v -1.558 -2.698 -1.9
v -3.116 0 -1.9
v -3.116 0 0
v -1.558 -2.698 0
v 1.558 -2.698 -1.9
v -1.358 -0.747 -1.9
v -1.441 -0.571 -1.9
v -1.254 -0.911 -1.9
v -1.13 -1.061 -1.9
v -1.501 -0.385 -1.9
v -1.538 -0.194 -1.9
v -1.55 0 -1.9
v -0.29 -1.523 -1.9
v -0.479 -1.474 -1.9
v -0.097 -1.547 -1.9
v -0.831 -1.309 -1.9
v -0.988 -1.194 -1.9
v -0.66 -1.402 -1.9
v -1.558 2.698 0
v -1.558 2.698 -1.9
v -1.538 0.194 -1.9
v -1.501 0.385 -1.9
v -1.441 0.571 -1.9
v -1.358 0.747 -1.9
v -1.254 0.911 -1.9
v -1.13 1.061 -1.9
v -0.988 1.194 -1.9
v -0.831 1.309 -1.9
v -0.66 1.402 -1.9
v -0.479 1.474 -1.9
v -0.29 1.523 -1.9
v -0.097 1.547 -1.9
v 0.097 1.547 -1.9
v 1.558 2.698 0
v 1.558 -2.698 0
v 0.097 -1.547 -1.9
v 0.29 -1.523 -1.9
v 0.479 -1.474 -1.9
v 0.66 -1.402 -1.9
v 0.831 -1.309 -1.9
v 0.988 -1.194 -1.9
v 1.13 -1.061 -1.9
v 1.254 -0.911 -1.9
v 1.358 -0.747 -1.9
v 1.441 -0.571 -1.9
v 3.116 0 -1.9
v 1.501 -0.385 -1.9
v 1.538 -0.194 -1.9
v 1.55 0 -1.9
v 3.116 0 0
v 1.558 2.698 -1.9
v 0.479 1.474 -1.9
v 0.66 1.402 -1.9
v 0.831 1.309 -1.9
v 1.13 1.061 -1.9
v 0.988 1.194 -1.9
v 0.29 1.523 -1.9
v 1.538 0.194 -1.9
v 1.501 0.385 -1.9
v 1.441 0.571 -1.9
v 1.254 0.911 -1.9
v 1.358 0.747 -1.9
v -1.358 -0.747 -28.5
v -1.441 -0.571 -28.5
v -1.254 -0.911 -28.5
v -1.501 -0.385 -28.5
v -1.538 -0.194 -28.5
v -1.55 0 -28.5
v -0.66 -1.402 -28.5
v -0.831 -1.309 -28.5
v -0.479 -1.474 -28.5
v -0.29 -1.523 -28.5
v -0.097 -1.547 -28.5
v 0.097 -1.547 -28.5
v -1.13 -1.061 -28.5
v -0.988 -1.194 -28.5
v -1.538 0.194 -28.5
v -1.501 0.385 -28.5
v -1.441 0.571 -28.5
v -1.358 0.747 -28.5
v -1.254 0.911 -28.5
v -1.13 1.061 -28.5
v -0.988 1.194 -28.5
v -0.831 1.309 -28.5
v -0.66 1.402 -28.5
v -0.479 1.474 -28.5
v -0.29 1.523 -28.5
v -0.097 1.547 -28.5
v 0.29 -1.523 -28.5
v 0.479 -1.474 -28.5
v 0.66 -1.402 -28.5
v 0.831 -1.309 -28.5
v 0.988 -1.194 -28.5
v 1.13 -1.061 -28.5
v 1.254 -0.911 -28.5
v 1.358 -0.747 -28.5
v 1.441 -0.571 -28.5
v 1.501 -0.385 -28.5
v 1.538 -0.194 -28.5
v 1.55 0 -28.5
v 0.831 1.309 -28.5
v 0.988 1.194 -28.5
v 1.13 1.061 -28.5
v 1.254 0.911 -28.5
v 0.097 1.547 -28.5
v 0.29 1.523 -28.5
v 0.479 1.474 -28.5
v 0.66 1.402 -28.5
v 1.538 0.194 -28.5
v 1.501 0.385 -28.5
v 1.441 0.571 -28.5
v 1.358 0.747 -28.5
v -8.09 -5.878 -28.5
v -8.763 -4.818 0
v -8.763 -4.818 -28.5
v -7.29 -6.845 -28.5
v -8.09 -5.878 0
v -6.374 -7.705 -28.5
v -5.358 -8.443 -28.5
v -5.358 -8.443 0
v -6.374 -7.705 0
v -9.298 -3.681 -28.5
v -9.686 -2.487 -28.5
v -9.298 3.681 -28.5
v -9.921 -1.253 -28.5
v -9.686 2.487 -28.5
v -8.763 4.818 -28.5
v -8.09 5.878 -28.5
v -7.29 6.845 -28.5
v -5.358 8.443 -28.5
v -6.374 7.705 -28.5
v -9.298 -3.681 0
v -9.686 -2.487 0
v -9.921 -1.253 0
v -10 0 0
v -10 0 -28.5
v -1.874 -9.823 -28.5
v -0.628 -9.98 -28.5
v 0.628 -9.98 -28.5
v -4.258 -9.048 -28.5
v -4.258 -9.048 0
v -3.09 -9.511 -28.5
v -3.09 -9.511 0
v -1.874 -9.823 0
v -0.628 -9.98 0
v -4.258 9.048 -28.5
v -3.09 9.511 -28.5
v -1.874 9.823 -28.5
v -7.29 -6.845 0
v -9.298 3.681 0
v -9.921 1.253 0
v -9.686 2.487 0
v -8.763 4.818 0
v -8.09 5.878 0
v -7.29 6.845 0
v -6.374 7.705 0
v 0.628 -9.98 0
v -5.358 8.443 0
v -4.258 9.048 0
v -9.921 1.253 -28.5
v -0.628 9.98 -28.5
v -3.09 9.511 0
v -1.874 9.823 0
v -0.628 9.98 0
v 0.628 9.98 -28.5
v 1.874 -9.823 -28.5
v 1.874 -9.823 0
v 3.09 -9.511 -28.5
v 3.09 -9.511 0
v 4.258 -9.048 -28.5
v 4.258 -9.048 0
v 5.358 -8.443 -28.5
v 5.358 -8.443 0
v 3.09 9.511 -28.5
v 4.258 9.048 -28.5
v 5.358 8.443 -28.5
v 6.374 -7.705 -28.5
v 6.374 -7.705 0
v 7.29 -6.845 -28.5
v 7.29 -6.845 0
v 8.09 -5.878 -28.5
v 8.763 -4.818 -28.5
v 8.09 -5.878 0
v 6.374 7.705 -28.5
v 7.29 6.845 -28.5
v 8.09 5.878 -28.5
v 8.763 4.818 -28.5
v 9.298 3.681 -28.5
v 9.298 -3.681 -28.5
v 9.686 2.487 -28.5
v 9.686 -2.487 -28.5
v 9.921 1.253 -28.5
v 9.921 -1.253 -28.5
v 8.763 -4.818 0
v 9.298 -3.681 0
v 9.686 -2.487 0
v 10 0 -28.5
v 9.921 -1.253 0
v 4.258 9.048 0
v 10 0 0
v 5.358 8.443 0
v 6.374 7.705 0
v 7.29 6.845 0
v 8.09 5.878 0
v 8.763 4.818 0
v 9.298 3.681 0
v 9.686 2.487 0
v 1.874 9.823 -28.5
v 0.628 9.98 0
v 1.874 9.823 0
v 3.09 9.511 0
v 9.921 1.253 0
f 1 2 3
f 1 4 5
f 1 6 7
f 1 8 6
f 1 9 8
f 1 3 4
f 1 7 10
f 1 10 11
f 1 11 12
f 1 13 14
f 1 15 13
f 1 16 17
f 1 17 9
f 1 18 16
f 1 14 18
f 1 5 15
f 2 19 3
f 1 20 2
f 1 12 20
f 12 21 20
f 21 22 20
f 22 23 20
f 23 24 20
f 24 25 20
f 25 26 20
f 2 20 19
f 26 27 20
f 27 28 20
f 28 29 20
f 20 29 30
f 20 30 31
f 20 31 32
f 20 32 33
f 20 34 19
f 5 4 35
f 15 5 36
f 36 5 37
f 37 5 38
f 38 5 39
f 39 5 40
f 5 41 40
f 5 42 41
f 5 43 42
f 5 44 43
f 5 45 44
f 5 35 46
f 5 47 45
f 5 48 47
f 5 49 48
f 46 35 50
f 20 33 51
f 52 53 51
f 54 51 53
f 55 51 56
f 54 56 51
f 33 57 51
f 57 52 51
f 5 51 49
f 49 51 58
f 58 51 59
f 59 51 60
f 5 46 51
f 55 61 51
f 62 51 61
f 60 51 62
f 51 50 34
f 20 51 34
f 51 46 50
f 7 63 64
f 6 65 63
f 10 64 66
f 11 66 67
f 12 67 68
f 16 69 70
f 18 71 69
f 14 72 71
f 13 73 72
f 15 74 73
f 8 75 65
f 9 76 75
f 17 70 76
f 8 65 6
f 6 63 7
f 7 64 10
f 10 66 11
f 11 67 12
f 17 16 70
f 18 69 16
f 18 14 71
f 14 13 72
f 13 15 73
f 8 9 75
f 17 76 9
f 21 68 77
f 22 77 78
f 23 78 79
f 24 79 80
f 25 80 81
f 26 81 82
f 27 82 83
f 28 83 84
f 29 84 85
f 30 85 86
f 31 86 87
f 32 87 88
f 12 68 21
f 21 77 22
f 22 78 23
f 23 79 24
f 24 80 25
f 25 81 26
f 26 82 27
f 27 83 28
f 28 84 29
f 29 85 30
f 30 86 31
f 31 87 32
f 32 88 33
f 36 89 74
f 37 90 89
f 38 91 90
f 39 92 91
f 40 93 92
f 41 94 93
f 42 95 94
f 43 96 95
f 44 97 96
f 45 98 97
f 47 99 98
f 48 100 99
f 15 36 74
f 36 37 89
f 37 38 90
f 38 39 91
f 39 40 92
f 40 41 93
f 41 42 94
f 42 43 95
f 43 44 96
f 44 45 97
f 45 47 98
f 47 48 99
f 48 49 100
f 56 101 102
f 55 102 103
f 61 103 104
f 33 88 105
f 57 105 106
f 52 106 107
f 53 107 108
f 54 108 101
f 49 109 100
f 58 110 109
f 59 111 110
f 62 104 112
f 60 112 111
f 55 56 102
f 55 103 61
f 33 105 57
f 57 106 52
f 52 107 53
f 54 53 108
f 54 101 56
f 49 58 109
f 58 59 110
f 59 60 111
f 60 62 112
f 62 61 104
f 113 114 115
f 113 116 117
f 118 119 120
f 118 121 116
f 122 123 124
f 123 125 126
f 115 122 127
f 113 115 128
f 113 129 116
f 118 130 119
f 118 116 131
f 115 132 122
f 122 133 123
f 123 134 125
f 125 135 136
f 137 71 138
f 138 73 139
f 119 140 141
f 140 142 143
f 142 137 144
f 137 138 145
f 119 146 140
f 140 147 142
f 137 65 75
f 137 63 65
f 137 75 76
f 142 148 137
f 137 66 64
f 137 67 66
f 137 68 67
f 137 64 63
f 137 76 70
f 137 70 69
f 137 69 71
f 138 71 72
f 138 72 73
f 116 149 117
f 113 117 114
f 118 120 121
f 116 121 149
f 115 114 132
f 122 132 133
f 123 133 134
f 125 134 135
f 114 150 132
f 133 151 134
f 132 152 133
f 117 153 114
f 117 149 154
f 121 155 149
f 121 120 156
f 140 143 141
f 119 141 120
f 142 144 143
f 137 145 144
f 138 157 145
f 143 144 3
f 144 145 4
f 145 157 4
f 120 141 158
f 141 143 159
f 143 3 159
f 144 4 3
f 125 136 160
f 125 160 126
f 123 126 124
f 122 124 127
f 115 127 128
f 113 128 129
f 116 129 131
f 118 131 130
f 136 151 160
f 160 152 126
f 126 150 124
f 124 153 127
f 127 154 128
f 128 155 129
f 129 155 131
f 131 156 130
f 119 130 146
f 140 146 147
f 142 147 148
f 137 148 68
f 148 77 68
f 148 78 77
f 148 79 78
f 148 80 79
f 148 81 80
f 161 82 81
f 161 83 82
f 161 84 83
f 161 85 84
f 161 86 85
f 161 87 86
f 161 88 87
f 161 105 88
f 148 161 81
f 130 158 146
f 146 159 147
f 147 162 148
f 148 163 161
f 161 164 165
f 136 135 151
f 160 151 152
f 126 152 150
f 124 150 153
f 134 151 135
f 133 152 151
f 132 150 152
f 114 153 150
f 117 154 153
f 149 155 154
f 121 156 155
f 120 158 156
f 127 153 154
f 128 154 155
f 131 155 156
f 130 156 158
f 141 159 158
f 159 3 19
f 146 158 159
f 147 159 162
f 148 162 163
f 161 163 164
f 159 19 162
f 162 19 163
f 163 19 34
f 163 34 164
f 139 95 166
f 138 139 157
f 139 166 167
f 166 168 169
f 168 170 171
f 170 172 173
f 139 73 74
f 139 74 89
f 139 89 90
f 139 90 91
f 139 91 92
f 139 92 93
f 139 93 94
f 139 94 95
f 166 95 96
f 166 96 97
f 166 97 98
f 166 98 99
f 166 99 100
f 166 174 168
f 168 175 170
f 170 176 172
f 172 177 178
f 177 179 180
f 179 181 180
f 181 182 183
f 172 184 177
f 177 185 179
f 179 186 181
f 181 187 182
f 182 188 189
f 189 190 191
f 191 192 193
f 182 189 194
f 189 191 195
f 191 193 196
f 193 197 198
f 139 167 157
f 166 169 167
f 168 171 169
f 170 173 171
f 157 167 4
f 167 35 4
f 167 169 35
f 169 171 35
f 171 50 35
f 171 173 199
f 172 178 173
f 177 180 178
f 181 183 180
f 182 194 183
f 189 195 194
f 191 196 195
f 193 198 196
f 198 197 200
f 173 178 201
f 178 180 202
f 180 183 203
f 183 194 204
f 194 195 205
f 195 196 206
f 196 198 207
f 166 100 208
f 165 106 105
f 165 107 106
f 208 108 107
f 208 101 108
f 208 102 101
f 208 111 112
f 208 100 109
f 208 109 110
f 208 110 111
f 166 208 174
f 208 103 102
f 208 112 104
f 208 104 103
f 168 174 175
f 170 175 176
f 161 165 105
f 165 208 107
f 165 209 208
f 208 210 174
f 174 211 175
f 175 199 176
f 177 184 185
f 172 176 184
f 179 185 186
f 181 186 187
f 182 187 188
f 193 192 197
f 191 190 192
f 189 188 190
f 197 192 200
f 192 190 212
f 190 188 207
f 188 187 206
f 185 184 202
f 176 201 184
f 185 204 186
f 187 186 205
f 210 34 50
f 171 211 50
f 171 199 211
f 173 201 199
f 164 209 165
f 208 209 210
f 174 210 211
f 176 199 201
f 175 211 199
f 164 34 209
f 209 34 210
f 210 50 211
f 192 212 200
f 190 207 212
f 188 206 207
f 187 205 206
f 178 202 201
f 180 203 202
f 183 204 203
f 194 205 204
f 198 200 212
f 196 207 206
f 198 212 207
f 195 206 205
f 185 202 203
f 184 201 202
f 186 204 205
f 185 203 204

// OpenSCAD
$fn = 50;

difference() {
	union() {
		translate(v = [0, 0, -28.5]) {
			cylinder(h = 28.5, r = 10.0);
		}
	}
	union() {
		translate(v = [0, 0, 0]) {
			rotate(a = [0, 0, 0]) {
				difference() {
					union() {
						translate(v = [0, 0, -1.9]) {
							linear_extrude(height = 1.9) {
								polygon(points = [[3.1158, 0.0], [1.5579000000000005, 2.698361953111554], [-1.5578999999999994, 2.6983619531115544], [-3.1158, 3.815754496783323e-16], [-1.5579000000000014, -2.6983619531115535], [1.557899999999998, -2.6983619531115552]]);
							}
						}
					}
					union();
				}
			}
		}
		#translate(v = [0, 0, -100.0]) {
			cylinder(h = 200, r = 1.55);
		}
	}
}
